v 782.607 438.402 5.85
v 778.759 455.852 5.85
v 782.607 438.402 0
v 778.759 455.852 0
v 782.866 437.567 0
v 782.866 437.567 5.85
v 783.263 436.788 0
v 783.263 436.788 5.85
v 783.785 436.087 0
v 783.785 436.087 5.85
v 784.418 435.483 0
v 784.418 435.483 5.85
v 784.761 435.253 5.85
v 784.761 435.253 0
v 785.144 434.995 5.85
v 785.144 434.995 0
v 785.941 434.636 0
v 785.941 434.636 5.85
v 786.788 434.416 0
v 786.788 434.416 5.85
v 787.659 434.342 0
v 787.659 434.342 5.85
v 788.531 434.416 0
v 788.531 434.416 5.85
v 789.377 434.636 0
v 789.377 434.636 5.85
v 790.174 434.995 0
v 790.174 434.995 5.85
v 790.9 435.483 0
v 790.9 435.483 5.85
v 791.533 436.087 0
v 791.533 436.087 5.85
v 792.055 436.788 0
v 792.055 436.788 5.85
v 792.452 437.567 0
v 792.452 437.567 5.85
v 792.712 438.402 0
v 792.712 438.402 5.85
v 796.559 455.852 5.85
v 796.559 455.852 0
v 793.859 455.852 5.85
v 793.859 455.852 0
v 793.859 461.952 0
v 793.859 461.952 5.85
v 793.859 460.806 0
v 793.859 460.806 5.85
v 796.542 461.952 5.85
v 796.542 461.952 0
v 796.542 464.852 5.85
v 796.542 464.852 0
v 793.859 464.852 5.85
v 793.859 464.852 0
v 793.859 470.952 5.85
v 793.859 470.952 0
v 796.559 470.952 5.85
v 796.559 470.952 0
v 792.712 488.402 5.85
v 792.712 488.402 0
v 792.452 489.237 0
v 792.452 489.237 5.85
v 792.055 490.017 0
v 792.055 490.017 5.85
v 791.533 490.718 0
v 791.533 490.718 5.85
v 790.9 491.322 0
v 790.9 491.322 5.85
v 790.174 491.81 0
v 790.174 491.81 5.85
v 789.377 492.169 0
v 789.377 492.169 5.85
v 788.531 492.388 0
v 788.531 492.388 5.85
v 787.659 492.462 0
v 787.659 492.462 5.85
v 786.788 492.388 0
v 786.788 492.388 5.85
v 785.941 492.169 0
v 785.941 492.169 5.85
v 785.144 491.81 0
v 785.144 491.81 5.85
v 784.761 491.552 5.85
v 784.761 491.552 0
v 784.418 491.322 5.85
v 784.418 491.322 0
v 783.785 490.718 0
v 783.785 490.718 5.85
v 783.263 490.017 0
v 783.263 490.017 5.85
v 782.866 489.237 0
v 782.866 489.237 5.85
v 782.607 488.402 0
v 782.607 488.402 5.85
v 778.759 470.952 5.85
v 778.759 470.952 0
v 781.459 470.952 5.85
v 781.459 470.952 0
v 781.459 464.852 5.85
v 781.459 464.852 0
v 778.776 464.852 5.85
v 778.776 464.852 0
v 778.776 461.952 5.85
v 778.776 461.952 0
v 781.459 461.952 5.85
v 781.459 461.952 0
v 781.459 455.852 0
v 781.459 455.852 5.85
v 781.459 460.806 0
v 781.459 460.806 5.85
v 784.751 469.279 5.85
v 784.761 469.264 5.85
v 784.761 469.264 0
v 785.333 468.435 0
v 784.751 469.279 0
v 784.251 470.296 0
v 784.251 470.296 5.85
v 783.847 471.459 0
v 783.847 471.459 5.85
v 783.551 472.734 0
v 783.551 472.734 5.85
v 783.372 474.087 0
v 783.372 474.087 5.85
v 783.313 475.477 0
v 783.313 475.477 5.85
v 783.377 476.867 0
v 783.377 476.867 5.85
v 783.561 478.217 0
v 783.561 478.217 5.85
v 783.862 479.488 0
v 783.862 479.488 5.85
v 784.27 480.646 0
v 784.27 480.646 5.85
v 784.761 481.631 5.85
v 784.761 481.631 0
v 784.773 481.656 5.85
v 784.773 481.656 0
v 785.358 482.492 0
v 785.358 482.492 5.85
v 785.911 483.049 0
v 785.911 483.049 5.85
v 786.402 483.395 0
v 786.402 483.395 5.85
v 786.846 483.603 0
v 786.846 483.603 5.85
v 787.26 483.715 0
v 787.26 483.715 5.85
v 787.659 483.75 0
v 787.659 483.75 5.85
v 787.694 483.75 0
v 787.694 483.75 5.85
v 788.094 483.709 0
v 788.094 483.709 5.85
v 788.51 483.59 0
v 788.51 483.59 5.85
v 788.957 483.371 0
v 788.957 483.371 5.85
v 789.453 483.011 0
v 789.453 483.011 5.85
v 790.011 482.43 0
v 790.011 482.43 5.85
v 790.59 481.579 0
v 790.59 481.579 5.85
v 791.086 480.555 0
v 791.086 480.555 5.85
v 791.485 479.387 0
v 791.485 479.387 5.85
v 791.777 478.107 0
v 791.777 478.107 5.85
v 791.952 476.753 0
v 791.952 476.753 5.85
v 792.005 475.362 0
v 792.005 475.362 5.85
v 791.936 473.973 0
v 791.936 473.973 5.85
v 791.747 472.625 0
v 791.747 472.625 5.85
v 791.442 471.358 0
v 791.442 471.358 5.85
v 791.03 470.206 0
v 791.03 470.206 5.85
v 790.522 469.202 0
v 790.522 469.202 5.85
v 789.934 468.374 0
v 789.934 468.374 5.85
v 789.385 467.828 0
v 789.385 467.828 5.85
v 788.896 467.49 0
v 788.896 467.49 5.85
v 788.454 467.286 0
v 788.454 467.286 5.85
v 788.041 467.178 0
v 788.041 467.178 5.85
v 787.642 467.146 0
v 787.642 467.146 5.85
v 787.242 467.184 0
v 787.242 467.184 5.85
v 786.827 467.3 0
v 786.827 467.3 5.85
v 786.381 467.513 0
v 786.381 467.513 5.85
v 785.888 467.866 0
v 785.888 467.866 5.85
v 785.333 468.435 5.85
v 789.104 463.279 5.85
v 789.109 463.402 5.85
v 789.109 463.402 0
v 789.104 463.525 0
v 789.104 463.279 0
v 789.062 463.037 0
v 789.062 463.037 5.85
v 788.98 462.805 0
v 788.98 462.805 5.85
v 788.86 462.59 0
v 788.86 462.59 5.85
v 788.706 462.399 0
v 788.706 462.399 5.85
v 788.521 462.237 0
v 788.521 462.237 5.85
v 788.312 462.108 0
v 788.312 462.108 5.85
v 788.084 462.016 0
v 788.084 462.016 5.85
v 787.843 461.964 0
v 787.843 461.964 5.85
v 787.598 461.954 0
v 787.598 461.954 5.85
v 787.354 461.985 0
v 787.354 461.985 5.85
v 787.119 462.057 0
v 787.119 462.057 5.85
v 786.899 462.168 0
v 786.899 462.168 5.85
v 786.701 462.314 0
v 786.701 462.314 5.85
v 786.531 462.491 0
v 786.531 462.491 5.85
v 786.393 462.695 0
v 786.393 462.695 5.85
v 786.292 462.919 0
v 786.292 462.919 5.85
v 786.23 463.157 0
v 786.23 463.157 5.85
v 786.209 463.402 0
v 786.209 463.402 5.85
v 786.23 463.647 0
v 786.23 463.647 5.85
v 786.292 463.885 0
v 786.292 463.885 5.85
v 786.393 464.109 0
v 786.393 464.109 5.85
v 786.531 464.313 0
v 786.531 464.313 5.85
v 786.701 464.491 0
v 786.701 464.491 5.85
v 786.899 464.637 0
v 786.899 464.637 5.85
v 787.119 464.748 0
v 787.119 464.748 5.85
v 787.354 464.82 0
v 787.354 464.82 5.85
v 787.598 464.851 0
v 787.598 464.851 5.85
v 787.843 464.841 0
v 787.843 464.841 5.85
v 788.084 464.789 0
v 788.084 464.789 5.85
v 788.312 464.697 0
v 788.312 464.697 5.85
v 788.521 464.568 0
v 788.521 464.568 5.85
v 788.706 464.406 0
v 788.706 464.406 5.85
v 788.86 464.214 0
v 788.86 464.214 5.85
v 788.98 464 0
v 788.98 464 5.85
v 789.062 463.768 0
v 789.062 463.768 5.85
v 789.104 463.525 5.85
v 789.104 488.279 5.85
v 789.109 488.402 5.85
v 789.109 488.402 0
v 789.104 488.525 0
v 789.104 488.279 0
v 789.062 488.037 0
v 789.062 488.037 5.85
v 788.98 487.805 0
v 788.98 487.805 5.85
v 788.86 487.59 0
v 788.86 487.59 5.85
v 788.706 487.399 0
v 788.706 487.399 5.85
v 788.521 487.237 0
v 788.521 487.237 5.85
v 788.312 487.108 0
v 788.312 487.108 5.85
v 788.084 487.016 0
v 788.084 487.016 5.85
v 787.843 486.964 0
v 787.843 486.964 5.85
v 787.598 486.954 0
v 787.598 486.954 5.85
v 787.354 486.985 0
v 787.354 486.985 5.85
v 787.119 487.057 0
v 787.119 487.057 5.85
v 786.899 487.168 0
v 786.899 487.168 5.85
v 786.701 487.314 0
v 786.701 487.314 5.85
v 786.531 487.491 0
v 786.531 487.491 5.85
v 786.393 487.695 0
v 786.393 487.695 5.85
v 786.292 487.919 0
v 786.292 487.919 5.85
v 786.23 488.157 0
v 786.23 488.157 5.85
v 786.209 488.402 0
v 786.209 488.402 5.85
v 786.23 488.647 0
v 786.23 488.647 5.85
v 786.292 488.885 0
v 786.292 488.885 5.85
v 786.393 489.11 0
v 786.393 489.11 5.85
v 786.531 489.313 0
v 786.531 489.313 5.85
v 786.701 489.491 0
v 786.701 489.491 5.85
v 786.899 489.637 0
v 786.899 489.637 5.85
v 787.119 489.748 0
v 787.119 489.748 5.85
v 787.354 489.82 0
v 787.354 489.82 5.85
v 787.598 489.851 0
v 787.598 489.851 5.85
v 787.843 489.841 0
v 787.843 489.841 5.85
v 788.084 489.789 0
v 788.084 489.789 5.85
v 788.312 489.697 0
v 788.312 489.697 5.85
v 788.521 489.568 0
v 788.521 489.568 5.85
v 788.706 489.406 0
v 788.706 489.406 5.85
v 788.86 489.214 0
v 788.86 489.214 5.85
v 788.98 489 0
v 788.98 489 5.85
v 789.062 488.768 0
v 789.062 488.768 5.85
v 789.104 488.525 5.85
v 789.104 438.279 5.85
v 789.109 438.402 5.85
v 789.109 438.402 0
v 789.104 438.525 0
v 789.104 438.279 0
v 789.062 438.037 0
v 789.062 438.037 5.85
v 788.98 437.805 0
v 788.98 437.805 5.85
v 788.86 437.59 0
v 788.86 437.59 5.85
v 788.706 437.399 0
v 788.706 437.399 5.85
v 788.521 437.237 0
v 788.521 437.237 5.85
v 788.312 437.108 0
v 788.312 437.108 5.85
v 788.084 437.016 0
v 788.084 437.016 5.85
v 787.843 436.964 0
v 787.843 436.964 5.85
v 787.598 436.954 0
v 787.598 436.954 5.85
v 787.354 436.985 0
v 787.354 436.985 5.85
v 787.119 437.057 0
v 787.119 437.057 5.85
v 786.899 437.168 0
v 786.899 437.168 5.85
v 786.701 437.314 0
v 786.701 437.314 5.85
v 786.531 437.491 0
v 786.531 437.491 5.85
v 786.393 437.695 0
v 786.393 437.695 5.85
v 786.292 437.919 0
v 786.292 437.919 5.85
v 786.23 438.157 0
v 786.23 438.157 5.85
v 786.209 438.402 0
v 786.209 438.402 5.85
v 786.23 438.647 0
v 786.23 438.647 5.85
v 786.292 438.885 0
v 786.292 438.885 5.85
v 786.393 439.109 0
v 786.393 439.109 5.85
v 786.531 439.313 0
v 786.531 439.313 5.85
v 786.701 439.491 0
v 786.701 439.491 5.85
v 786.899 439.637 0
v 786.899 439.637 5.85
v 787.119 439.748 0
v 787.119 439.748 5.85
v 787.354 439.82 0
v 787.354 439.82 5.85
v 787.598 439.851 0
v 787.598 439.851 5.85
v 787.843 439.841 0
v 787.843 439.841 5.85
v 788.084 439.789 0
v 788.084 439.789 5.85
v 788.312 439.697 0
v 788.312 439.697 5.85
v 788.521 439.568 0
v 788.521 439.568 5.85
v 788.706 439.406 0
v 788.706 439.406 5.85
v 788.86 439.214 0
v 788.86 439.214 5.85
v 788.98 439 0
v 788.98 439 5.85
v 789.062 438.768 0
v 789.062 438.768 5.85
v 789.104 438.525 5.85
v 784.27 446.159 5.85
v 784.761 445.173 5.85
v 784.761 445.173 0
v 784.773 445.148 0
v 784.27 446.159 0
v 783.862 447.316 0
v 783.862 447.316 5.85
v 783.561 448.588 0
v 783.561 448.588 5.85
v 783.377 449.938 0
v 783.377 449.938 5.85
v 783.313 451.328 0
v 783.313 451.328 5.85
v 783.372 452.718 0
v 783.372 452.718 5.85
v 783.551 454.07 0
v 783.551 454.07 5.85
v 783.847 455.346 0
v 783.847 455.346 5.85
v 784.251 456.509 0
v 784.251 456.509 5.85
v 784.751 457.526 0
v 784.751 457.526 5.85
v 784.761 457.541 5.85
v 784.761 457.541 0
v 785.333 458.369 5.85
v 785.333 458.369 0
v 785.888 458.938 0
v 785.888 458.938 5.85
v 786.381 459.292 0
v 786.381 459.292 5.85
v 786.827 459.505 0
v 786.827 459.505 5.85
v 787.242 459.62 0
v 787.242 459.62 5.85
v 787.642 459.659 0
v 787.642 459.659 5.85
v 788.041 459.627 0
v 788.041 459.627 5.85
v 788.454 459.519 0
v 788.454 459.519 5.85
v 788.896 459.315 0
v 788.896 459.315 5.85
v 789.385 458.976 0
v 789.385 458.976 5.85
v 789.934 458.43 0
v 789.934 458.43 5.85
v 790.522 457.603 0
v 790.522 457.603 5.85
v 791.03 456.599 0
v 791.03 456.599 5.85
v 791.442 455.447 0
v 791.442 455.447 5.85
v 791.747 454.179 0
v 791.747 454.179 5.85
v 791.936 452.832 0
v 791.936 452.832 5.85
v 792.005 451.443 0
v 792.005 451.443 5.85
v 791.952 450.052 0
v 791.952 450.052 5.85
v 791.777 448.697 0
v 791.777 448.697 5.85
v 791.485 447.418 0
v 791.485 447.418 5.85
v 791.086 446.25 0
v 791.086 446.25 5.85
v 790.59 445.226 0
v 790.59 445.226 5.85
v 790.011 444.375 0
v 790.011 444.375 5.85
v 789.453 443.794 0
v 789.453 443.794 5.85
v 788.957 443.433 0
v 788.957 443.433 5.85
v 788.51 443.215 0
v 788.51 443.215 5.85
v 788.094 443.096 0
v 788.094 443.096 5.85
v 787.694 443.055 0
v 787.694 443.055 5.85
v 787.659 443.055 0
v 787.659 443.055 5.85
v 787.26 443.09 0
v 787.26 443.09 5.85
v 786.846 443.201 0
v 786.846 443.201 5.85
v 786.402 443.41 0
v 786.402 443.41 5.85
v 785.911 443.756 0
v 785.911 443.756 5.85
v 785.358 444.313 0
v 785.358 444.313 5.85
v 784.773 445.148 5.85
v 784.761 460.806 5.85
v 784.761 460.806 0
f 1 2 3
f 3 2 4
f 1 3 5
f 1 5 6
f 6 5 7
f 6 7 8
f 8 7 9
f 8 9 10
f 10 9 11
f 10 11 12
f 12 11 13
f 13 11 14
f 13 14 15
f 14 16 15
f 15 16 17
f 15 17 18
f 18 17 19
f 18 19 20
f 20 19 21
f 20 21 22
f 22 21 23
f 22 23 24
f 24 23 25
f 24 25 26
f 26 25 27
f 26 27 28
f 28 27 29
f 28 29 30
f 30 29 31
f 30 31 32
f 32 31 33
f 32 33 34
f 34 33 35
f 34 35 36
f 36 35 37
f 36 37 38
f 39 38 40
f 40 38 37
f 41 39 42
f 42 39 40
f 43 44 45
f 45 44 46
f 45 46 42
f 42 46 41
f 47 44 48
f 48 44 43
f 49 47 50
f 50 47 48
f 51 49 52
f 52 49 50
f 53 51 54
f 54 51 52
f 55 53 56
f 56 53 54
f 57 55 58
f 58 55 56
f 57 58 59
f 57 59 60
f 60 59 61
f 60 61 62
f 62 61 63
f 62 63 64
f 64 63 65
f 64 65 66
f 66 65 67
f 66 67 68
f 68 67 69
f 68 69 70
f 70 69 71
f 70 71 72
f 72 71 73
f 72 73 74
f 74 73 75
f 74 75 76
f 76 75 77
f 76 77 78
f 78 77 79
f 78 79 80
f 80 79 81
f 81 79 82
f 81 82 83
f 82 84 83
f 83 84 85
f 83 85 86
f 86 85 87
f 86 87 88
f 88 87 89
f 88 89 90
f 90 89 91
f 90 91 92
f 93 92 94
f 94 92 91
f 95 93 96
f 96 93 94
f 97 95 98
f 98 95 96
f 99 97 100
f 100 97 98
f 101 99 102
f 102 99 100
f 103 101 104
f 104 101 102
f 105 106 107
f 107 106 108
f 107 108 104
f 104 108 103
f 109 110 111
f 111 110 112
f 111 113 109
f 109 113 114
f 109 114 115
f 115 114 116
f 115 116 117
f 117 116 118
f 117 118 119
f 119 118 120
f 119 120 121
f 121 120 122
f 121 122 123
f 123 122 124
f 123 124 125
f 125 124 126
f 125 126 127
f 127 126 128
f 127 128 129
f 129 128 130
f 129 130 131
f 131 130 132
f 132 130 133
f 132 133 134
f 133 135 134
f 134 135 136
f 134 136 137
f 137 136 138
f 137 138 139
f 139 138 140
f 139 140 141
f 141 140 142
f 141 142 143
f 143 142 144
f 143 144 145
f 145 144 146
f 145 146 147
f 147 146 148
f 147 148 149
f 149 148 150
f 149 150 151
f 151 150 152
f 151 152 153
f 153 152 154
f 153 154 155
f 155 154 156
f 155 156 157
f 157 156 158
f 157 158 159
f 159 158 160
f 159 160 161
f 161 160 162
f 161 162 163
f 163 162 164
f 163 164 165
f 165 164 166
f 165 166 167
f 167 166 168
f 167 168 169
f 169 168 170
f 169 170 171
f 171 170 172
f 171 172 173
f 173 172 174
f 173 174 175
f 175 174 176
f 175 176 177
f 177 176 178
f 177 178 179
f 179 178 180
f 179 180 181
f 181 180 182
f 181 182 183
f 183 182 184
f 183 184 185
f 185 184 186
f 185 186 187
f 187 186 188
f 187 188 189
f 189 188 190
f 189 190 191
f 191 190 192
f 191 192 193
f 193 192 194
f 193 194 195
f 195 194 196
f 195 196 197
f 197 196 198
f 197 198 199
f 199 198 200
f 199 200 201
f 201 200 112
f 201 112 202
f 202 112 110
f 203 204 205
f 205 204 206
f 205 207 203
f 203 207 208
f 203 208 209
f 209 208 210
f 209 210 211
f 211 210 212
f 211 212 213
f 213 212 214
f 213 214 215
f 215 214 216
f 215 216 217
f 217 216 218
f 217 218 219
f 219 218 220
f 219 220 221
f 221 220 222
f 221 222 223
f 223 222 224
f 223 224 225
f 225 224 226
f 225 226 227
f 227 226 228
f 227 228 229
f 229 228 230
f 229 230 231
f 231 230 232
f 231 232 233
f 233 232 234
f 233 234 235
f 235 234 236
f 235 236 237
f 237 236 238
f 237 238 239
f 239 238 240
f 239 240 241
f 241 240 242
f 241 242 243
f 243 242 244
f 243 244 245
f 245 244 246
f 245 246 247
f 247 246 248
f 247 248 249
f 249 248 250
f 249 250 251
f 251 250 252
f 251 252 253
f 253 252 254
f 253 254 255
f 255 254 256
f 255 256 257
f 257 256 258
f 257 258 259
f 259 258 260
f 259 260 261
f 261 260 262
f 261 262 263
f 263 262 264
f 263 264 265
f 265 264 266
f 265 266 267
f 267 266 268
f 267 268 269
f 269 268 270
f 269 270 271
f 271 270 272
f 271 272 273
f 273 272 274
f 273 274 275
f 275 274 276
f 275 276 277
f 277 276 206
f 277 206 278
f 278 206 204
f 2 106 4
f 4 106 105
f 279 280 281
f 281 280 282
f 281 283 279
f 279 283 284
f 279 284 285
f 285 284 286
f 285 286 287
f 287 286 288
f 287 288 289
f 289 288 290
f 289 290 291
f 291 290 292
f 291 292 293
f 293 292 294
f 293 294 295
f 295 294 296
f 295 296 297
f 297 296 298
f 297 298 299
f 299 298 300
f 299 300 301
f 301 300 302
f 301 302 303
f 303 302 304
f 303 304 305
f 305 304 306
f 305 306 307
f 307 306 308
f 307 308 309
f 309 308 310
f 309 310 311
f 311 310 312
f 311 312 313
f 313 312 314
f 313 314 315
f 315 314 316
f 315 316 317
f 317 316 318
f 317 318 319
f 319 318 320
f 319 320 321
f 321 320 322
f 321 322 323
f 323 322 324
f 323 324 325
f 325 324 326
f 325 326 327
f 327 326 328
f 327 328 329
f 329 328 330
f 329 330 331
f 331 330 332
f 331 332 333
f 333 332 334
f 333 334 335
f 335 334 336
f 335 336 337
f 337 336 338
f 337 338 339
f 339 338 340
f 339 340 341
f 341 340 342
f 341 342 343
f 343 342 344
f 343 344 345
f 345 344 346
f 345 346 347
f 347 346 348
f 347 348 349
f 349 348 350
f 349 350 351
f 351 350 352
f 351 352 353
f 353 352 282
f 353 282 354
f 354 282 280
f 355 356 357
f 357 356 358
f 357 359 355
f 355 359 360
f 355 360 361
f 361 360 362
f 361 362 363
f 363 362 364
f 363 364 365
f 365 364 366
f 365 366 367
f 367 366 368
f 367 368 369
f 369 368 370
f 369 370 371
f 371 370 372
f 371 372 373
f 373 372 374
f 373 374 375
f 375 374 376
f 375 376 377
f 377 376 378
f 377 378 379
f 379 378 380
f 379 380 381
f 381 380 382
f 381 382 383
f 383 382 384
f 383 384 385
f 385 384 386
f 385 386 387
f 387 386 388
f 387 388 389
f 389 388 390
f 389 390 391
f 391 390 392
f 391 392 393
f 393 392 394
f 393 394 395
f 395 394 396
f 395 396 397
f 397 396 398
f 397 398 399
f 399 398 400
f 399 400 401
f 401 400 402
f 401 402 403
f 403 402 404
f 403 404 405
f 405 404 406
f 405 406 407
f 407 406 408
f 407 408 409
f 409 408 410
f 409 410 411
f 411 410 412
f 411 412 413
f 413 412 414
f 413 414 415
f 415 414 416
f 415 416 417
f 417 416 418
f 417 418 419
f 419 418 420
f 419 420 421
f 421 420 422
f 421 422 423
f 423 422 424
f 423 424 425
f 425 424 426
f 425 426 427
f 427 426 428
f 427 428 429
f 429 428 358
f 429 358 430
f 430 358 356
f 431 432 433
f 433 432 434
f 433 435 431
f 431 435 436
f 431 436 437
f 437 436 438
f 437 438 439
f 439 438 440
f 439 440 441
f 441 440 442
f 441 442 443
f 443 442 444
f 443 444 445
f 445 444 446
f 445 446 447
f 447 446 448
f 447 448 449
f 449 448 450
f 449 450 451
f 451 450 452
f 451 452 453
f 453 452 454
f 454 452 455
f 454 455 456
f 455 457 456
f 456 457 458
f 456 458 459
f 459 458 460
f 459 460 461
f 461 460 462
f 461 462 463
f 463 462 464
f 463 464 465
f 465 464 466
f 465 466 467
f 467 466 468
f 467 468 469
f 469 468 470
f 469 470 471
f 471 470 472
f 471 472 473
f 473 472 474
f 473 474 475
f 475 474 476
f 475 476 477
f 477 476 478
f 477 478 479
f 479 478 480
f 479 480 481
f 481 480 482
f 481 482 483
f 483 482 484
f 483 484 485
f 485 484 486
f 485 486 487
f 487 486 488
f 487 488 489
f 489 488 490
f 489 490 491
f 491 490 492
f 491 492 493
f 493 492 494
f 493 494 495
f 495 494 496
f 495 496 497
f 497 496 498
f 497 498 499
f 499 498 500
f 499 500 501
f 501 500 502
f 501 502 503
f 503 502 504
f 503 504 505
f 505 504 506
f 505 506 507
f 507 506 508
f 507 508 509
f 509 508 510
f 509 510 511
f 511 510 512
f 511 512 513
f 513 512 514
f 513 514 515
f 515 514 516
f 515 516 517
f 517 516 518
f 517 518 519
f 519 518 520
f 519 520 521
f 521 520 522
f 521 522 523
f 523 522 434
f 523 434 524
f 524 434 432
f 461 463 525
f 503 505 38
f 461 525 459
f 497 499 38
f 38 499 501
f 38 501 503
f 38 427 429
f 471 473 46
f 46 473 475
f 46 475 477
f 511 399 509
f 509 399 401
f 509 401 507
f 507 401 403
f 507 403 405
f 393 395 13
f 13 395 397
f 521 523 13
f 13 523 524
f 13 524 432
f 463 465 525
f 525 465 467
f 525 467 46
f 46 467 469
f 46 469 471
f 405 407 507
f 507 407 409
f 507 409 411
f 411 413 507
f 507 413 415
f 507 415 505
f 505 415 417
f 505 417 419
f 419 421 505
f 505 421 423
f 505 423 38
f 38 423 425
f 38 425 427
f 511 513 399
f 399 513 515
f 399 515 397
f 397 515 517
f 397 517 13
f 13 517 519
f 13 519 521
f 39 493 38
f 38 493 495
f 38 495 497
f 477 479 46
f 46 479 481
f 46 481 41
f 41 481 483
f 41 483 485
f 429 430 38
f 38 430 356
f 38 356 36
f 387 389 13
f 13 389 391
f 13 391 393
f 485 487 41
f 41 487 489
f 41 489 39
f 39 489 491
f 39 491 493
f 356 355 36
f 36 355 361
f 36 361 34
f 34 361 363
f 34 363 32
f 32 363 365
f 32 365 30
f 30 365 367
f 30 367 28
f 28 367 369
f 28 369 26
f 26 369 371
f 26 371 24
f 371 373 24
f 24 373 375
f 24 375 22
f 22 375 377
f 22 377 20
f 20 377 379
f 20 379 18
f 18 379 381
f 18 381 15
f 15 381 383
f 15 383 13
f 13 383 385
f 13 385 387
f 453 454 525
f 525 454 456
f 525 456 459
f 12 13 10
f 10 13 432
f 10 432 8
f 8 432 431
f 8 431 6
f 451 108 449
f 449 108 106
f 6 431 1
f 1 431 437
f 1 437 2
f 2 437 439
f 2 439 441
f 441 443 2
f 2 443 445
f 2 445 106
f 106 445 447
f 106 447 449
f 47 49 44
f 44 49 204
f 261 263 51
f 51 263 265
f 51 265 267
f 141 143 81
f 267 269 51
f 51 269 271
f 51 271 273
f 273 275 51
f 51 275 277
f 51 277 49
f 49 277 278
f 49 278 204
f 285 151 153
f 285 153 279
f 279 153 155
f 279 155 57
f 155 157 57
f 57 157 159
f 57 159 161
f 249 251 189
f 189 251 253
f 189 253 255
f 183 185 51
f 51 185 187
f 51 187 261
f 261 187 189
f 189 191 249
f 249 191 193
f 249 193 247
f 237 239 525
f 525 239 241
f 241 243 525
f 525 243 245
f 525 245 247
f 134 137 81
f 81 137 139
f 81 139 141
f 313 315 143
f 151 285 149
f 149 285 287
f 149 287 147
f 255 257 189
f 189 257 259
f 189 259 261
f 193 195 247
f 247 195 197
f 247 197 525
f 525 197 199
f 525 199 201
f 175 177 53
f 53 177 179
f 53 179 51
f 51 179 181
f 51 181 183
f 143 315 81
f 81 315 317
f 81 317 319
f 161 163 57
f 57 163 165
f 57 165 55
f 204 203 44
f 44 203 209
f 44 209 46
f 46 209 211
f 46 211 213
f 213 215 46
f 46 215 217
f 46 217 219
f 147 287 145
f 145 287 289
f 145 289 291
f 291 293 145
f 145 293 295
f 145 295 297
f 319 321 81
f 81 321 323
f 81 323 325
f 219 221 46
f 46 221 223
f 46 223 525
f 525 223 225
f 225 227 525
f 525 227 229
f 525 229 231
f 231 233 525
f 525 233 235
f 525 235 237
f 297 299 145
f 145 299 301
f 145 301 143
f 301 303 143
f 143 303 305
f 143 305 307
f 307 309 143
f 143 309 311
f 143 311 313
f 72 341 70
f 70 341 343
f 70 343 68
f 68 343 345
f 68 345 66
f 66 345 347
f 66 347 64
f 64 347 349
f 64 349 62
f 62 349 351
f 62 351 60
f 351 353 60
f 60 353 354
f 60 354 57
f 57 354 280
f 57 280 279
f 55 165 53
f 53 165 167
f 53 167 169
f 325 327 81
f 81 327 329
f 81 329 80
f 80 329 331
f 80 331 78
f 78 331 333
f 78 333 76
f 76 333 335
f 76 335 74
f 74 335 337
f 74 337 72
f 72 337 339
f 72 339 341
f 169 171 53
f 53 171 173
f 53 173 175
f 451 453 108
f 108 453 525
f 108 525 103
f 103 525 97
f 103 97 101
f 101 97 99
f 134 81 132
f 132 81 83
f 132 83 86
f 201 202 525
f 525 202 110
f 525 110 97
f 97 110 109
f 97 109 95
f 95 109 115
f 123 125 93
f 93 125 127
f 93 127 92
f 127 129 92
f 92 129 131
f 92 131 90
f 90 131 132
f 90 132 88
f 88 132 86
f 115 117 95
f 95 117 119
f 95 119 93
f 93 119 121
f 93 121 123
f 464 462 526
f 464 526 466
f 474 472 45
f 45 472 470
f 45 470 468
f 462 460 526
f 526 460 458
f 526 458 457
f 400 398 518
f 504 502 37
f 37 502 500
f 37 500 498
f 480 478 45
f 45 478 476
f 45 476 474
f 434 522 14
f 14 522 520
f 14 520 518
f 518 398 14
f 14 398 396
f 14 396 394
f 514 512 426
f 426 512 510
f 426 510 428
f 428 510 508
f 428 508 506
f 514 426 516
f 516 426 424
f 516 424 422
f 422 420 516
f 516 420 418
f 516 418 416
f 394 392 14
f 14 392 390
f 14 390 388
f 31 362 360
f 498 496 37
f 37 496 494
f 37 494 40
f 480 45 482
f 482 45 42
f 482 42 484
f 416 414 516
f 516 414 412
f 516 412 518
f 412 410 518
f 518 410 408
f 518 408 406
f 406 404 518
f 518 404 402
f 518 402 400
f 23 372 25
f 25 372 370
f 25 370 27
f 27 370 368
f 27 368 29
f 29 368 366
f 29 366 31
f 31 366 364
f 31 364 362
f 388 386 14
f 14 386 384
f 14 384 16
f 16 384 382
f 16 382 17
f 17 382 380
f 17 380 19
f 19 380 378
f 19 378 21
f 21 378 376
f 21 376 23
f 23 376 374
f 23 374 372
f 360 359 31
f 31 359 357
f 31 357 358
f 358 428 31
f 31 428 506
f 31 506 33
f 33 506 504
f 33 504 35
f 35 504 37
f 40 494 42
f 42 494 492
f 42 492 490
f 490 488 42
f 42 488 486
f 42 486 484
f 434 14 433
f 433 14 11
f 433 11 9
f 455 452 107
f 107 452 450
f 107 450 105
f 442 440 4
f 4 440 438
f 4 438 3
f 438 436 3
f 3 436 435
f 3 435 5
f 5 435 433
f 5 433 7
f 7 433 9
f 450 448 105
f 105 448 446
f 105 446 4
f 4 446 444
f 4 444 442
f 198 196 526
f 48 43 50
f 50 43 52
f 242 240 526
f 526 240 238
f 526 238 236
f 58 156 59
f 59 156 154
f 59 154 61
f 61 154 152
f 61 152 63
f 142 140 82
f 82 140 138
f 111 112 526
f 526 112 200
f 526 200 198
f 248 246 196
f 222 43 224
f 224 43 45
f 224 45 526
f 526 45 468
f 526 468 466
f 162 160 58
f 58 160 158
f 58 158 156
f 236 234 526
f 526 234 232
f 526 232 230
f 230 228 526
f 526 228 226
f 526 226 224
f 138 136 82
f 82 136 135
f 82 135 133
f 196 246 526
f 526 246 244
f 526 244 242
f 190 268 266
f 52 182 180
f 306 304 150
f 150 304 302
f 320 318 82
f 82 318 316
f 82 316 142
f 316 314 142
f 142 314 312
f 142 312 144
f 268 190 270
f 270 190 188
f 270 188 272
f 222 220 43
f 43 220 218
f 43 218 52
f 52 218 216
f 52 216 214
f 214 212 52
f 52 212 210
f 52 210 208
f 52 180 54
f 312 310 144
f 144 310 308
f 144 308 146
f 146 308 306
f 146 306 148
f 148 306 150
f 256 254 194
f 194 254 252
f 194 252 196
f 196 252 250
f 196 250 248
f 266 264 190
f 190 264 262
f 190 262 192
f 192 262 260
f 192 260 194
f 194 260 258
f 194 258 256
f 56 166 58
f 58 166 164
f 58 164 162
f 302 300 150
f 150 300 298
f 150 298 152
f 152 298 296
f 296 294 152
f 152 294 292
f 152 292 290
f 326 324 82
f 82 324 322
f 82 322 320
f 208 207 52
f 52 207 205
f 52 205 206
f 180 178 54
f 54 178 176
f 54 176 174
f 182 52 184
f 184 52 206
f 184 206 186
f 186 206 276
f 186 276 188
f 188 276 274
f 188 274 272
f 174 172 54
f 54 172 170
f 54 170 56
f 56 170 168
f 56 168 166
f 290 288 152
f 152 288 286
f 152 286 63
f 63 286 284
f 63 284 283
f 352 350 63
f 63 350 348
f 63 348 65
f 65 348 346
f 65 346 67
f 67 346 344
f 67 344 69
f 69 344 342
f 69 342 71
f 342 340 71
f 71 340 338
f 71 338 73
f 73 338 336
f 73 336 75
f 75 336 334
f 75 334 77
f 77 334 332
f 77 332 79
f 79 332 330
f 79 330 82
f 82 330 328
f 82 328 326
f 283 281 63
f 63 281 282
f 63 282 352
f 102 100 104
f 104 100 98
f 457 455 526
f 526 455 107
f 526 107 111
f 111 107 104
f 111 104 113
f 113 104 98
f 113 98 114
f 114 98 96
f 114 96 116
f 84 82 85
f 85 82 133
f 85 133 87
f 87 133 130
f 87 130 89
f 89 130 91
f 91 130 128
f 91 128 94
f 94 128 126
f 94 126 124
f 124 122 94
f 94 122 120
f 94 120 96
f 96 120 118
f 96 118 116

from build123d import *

# Parameters (mm, degrees)
SKETCH1_R           = 1.45
SKETCH1_RX          = 8.302080555
SKETCH1_RY          = 4.346497416
BOSS_EXTRUDE1_DEPTH = 5.85


with BuildPart() as part:
    # Sketch1 → Boss-Extrude1 (new body)
    with BuildSketch(Plane.XY):
        with BuildLine():
            Line((781.459168709, 464.852359197), (778.776092953, 464.852359197))
            Line((778.776092953, 464.852359197), (778.776092953, 461.952359197))
            Line((778.776092953, 461.952359197), (781.459168709, 461.952359197))
            Line((781.459168709, 461.952359197), (781.459168709, 455.852359197))
            Line((781.459168709, 455.852359197), (778.759168709, 455.852359197))
            Line((778.759168709, 455.852359197), (782.606547069, 438.402359197))
            ThreePointArc((782.606547069, 438.402359197), (787.659168709, 434.342389784), (792.711790348, 438.402359197))
            Line((792.711790348, 438.402359197), (796.559168709, 455.852359197))
            Line((796.559168709, 455.852359197), (793.859168709, 455.852359197))
            Line((793.859168709, 455.852359197), (793.859168709, 461.952359197))
            Line((793.859168709, 461.952359197), (796.542244464, 461.952359197))
            Line((796.542244464, 461.952359197), (796.542244464, 464.852359197))
            Line((796.542244464, 464.852359197), (793.859168709, 464.852359197))
            Line((793.859168709, 464.852359197), (793.859168709, 470.952359197))
            Line((793.859168709, 470.952359197), (796.559168709, 470.952359197))
            Line((796.559168709, 470.952359197), (792.711790348, 488.402359197))
            ThreePointArc((792.711790348, 488.402359197), (787.659168709, 492.46232861), (782.606547069, 488.402359197))
            Line((782.606547069, 488.402359197), (778.759168709, 470.952359197))
            Line((778.759168709, 470.952359197), (781.459168709, 470.952359197))
            Line((781.459168709, 470.952359197), (781.459168709, 464.852359197))
        make_face()
        with Locations((787.659168709, 488.402359197)):
            Circle(SKETCH1_R, mode=Mode.SUBTRACT)
        with Locations((787.659168709, 438.402359197)):
            Circle(SKETCH1_R, mode=Mode.SUBTRACT)
        with Locations((787.659168709, 463.402359197)):
            Circle(SKETCH1_R, mode=Mode.SUBTRACT)
        with Locations(Location((787.659168709, 475.448118238), (0, 0, 90))):
            Ellipse(SKETCH1_RX, SKETCH1_RY, mode=Mode.SUBTRACT)
        with Locations(Location((787.659168709, 451.356600156), (0, 0, -90))):
            Ellipse(SKETCH1_RX, SKETCH1_RY, mode=Mode.SUBTRACT)
    extrude(amount=BOSS_EXTRUDE1_DEPTH)


solid = part.part
